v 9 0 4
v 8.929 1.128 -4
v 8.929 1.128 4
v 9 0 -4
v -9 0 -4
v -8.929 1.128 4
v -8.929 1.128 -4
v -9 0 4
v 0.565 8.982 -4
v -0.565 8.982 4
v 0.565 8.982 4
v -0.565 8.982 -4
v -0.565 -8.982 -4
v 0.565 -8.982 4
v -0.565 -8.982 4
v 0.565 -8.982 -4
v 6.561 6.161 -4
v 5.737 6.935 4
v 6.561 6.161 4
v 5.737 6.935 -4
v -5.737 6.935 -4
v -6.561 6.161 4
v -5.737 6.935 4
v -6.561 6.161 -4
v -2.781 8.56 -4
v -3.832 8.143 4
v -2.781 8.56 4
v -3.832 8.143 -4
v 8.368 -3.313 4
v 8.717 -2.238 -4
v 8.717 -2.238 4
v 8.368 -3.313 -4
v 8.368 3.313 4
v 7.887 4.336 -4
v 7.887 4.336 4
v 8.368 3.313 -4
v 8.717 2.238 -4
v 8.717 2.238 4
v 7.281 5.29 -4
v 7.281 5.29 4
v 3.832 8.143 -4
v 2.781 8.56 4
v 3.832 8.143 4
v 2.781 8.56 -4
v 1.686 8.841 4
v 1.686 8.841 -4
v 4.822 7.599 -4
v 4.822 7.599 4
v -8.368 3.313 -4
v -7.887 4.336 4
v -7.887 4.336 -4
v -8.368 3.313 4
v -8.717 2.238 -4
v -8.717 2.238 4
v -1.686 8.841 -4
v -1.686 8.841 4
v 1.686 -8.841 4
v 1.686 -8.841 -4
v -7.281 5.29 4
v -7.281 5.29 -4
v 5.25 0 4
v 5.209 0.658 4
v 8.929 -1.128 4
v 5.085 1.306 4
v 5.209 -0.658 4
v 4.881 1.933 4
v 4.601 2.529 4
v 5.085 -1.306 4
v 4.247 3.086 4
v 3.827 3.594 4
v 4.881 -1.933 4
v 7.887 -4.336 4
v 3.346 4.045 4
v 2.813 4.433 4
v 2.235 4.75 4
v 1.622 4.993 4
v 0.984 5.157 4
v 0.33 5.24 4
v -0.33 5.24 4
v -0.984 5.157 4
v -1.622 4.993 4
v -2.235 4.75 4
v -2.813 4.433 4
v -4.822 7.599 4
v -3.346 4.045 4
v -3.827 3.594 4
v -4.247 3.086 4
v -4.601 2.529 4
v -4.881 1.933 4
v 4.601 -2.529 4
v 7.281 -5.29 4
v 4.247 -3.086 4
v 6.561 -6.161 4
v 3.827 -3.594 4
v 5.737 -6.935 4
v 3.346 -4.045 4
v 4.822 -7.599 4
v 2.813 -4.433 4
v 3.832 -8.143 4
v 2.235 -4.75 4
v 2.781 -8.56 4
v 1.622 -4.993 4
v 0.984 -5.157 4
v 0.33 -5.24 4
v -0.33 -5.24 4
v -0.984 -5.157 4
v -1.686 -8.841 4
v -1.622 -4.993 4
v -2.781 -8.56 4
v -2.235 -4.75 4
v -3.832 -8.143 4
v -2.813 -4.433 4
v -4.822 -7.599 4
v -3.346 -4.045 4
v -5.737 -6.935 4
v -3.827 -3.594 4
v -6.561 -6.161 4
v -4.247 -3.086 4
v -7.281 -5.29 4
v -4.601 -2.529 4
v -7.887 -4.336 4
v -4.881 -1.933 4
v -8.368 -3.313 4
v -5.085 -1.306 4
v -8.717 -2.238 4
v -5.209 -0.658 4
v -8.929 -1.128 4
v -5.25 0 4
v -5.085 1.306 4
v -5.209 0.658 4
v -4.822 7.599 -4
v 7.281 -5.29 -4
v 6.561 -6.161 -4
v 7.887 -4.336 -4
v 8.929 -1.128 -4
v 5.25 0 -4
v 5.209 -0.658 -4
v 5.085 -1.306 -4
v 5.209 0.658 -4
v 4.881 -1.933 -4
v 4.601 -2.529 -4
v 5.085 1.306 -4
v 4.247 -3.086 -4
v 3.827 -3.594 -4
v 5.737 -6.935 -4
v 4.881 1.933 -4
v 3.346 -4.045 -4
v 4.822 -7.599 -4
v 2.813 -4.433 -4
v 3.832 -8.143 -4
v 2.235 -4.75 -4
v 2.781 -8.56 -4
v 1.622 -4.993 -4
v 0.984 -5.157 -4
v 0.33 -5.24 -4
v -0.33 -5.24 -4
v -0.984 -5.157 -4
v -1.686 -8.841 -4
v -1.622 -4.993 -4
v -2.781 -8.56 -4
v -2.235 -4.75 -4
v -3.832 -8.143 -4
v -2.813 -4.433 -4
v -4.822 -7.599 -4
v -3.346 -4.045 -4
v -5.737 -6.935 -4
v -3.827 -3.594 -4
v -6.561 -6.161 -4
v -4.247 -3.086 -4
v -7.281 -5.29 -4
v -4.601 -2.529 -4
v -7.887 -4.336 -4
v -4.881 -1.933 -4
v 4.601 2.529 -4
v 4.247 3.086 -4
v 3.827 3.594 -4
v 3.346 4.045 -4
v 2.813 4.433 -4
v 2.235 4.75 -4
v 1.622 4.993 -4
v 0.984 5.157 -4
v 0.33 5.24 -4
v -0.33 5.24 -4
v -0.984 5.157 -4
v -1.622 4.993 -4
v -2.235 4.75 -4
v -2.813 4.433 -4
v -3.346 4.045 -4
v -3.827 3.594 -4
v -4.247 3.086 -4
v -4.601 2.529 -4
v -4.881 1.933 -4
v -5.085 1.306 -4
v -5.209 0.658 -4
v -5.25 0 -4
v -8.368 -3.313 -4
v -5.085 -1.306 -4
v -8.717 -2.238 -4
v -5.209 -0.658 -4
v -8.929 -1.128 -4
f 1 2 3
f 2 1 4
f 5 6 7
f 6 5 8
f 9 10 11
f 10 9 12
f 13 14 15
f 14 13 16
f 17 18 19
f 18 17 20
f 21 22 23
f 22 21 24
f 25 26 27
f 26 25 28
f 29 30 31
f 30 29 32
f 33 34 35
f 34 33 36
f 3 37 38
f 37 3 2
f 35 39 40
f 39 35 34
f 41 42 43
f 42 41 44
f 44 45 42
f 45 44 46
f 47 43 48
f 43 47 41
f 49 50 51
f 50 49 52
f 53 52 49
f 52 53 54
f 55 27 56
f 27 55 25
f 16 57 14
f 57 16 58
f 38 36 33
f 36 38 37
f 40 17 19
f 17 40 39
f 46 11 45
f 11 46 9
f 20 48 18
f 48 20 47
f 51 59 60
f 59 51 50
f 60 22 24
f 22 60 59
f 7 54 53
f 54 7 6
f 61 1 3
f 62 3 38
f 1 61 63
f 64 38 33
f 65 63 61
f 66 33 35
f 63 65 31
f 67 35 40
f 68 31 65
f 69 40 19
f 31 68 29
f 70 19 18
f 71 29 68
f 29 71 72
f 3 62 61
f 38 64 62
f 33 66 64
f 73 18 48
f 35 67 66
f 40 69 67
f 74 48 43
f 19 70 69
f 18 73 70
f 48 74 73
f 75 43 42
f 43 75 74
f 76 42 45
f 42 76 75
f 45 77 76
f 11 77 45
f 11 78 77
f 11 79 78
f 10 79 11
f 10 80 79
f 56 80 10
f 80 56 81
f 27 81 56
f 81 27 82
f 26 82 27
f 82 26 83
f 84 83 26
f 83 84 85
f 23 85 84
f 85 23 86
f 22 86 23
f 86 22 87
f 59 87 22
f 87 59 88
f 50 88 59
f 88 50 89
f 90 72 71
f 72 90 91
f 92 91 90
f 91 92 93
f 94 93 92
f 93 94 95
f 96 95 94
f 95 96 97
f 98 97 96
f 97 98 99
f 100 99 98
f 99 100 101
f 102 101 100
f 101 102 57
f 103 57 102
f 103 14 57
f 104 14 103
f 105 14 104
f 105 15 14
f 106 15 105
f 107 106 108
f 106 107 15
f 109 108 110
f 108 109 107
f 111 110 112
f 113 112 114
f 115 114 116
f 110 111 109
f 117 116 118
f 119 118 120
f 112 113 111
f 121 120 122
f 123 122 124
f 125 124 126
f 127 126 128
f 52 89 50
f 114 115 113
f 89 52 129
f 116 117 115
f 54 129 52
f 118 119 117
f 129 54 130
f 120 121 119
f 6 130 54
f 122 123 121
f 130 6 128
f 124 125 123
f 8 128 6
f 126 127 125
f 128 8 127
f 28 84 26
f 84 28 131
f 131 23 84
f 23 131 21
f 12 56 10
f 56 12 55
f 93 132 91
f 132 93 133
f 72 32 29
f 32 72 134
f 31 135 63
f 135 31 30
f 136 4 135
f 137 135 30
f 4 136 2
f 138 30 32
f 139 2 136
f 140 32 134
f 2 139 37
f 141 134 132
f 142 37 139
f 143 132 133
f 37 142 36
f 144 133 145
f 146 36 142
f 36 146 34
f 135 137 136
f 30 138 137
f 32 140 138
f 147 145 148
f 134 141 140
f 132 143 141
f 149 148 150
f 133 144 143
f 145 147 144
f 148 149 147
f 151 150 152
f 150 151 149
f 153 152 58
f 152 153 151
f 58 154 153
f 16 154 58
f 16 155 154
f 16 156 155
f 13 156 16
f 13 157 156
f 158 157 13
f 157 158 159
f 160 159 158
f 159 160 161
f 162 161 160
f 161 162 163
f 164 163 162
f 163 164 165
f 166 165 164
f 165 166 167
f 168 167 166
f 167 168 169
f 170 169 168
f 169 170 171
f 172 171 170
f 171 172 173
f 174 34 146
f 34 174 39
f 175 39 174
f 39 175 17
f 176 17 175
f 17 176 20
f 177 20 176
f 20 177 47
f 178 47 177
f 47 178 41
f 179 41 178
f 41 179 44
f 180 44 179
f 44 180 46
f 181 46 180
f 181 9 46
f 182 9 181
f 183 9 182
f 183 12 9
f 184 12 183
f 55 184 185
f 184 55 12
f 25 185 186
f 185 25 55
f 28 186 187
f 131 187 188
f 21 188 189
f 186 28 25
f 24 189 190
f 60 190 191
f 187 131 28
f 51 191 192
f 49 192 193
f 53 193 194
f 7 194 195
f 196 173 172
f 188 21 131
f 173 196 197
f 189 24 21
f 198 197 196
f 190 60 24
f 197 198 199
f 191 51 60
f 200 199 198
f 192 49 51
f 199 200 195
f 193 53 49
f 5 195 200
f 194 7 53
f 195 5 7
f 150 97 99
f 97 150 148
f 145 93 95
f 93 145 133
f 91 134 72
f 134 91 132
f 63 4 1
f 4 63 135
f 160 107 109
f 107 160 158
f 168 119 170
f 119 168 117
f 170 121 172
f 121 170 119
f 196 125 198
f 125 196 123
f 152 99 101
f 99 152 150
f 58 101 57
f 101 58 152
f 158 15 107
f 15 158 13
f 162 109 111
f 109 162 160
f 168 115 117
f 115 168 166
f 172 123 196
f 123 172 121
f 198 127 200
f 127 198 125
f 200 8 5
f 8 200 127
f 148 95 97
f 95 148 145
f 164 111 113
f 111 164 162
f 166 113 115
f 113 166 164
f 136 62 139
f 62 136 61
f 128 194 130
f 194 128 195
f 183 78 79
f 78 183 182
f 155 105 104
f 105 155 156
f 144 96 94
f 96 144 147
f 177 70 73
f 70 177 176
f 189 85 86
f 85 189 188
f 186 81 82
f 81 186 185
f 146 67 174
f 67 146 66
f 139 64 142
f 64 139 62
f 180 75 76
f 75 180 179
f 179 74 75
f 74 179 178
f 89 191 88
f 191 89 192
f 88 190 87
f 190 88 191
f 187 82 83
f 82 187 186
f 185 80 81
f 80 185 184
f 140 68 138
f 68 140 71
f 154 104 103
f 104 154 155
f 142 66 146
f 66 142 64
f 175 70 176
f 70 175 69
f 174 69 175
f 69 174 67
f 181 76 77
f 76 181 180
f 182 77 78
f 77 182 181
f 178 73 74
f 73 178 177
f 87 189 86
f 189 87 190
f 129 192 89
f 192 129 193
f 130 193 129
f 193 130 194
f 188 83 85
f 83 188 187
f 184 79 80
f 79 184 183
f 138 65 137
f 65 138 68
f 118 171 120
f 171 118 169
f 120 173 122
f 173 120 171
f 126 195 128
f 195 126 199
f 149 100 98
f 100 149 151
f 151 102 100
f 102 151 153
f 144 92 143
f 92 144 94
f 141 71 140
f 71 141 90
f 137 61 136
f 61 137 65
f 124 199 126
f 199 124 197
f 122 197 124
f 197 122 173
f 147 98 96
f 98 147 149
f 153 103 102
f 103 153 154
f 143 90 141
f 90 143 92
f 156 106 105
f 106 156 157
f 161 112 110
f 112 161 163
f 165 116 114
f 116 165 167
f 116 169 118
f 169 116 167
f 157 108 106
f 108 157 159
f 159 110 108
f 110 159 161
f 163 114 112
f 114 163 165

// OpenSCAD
$fn = 50;


difference() {
	union() {
		translate(v = [0, 0, -4.0000000000]) {
			cylinder(h = 8, r = 9.0000000000);
		}
	}
	union() {
		translate(v = [0, 0, -100.0000000000]) {
			cylinder(h = 200, r = 5.2500000000);
		}
	}
}
